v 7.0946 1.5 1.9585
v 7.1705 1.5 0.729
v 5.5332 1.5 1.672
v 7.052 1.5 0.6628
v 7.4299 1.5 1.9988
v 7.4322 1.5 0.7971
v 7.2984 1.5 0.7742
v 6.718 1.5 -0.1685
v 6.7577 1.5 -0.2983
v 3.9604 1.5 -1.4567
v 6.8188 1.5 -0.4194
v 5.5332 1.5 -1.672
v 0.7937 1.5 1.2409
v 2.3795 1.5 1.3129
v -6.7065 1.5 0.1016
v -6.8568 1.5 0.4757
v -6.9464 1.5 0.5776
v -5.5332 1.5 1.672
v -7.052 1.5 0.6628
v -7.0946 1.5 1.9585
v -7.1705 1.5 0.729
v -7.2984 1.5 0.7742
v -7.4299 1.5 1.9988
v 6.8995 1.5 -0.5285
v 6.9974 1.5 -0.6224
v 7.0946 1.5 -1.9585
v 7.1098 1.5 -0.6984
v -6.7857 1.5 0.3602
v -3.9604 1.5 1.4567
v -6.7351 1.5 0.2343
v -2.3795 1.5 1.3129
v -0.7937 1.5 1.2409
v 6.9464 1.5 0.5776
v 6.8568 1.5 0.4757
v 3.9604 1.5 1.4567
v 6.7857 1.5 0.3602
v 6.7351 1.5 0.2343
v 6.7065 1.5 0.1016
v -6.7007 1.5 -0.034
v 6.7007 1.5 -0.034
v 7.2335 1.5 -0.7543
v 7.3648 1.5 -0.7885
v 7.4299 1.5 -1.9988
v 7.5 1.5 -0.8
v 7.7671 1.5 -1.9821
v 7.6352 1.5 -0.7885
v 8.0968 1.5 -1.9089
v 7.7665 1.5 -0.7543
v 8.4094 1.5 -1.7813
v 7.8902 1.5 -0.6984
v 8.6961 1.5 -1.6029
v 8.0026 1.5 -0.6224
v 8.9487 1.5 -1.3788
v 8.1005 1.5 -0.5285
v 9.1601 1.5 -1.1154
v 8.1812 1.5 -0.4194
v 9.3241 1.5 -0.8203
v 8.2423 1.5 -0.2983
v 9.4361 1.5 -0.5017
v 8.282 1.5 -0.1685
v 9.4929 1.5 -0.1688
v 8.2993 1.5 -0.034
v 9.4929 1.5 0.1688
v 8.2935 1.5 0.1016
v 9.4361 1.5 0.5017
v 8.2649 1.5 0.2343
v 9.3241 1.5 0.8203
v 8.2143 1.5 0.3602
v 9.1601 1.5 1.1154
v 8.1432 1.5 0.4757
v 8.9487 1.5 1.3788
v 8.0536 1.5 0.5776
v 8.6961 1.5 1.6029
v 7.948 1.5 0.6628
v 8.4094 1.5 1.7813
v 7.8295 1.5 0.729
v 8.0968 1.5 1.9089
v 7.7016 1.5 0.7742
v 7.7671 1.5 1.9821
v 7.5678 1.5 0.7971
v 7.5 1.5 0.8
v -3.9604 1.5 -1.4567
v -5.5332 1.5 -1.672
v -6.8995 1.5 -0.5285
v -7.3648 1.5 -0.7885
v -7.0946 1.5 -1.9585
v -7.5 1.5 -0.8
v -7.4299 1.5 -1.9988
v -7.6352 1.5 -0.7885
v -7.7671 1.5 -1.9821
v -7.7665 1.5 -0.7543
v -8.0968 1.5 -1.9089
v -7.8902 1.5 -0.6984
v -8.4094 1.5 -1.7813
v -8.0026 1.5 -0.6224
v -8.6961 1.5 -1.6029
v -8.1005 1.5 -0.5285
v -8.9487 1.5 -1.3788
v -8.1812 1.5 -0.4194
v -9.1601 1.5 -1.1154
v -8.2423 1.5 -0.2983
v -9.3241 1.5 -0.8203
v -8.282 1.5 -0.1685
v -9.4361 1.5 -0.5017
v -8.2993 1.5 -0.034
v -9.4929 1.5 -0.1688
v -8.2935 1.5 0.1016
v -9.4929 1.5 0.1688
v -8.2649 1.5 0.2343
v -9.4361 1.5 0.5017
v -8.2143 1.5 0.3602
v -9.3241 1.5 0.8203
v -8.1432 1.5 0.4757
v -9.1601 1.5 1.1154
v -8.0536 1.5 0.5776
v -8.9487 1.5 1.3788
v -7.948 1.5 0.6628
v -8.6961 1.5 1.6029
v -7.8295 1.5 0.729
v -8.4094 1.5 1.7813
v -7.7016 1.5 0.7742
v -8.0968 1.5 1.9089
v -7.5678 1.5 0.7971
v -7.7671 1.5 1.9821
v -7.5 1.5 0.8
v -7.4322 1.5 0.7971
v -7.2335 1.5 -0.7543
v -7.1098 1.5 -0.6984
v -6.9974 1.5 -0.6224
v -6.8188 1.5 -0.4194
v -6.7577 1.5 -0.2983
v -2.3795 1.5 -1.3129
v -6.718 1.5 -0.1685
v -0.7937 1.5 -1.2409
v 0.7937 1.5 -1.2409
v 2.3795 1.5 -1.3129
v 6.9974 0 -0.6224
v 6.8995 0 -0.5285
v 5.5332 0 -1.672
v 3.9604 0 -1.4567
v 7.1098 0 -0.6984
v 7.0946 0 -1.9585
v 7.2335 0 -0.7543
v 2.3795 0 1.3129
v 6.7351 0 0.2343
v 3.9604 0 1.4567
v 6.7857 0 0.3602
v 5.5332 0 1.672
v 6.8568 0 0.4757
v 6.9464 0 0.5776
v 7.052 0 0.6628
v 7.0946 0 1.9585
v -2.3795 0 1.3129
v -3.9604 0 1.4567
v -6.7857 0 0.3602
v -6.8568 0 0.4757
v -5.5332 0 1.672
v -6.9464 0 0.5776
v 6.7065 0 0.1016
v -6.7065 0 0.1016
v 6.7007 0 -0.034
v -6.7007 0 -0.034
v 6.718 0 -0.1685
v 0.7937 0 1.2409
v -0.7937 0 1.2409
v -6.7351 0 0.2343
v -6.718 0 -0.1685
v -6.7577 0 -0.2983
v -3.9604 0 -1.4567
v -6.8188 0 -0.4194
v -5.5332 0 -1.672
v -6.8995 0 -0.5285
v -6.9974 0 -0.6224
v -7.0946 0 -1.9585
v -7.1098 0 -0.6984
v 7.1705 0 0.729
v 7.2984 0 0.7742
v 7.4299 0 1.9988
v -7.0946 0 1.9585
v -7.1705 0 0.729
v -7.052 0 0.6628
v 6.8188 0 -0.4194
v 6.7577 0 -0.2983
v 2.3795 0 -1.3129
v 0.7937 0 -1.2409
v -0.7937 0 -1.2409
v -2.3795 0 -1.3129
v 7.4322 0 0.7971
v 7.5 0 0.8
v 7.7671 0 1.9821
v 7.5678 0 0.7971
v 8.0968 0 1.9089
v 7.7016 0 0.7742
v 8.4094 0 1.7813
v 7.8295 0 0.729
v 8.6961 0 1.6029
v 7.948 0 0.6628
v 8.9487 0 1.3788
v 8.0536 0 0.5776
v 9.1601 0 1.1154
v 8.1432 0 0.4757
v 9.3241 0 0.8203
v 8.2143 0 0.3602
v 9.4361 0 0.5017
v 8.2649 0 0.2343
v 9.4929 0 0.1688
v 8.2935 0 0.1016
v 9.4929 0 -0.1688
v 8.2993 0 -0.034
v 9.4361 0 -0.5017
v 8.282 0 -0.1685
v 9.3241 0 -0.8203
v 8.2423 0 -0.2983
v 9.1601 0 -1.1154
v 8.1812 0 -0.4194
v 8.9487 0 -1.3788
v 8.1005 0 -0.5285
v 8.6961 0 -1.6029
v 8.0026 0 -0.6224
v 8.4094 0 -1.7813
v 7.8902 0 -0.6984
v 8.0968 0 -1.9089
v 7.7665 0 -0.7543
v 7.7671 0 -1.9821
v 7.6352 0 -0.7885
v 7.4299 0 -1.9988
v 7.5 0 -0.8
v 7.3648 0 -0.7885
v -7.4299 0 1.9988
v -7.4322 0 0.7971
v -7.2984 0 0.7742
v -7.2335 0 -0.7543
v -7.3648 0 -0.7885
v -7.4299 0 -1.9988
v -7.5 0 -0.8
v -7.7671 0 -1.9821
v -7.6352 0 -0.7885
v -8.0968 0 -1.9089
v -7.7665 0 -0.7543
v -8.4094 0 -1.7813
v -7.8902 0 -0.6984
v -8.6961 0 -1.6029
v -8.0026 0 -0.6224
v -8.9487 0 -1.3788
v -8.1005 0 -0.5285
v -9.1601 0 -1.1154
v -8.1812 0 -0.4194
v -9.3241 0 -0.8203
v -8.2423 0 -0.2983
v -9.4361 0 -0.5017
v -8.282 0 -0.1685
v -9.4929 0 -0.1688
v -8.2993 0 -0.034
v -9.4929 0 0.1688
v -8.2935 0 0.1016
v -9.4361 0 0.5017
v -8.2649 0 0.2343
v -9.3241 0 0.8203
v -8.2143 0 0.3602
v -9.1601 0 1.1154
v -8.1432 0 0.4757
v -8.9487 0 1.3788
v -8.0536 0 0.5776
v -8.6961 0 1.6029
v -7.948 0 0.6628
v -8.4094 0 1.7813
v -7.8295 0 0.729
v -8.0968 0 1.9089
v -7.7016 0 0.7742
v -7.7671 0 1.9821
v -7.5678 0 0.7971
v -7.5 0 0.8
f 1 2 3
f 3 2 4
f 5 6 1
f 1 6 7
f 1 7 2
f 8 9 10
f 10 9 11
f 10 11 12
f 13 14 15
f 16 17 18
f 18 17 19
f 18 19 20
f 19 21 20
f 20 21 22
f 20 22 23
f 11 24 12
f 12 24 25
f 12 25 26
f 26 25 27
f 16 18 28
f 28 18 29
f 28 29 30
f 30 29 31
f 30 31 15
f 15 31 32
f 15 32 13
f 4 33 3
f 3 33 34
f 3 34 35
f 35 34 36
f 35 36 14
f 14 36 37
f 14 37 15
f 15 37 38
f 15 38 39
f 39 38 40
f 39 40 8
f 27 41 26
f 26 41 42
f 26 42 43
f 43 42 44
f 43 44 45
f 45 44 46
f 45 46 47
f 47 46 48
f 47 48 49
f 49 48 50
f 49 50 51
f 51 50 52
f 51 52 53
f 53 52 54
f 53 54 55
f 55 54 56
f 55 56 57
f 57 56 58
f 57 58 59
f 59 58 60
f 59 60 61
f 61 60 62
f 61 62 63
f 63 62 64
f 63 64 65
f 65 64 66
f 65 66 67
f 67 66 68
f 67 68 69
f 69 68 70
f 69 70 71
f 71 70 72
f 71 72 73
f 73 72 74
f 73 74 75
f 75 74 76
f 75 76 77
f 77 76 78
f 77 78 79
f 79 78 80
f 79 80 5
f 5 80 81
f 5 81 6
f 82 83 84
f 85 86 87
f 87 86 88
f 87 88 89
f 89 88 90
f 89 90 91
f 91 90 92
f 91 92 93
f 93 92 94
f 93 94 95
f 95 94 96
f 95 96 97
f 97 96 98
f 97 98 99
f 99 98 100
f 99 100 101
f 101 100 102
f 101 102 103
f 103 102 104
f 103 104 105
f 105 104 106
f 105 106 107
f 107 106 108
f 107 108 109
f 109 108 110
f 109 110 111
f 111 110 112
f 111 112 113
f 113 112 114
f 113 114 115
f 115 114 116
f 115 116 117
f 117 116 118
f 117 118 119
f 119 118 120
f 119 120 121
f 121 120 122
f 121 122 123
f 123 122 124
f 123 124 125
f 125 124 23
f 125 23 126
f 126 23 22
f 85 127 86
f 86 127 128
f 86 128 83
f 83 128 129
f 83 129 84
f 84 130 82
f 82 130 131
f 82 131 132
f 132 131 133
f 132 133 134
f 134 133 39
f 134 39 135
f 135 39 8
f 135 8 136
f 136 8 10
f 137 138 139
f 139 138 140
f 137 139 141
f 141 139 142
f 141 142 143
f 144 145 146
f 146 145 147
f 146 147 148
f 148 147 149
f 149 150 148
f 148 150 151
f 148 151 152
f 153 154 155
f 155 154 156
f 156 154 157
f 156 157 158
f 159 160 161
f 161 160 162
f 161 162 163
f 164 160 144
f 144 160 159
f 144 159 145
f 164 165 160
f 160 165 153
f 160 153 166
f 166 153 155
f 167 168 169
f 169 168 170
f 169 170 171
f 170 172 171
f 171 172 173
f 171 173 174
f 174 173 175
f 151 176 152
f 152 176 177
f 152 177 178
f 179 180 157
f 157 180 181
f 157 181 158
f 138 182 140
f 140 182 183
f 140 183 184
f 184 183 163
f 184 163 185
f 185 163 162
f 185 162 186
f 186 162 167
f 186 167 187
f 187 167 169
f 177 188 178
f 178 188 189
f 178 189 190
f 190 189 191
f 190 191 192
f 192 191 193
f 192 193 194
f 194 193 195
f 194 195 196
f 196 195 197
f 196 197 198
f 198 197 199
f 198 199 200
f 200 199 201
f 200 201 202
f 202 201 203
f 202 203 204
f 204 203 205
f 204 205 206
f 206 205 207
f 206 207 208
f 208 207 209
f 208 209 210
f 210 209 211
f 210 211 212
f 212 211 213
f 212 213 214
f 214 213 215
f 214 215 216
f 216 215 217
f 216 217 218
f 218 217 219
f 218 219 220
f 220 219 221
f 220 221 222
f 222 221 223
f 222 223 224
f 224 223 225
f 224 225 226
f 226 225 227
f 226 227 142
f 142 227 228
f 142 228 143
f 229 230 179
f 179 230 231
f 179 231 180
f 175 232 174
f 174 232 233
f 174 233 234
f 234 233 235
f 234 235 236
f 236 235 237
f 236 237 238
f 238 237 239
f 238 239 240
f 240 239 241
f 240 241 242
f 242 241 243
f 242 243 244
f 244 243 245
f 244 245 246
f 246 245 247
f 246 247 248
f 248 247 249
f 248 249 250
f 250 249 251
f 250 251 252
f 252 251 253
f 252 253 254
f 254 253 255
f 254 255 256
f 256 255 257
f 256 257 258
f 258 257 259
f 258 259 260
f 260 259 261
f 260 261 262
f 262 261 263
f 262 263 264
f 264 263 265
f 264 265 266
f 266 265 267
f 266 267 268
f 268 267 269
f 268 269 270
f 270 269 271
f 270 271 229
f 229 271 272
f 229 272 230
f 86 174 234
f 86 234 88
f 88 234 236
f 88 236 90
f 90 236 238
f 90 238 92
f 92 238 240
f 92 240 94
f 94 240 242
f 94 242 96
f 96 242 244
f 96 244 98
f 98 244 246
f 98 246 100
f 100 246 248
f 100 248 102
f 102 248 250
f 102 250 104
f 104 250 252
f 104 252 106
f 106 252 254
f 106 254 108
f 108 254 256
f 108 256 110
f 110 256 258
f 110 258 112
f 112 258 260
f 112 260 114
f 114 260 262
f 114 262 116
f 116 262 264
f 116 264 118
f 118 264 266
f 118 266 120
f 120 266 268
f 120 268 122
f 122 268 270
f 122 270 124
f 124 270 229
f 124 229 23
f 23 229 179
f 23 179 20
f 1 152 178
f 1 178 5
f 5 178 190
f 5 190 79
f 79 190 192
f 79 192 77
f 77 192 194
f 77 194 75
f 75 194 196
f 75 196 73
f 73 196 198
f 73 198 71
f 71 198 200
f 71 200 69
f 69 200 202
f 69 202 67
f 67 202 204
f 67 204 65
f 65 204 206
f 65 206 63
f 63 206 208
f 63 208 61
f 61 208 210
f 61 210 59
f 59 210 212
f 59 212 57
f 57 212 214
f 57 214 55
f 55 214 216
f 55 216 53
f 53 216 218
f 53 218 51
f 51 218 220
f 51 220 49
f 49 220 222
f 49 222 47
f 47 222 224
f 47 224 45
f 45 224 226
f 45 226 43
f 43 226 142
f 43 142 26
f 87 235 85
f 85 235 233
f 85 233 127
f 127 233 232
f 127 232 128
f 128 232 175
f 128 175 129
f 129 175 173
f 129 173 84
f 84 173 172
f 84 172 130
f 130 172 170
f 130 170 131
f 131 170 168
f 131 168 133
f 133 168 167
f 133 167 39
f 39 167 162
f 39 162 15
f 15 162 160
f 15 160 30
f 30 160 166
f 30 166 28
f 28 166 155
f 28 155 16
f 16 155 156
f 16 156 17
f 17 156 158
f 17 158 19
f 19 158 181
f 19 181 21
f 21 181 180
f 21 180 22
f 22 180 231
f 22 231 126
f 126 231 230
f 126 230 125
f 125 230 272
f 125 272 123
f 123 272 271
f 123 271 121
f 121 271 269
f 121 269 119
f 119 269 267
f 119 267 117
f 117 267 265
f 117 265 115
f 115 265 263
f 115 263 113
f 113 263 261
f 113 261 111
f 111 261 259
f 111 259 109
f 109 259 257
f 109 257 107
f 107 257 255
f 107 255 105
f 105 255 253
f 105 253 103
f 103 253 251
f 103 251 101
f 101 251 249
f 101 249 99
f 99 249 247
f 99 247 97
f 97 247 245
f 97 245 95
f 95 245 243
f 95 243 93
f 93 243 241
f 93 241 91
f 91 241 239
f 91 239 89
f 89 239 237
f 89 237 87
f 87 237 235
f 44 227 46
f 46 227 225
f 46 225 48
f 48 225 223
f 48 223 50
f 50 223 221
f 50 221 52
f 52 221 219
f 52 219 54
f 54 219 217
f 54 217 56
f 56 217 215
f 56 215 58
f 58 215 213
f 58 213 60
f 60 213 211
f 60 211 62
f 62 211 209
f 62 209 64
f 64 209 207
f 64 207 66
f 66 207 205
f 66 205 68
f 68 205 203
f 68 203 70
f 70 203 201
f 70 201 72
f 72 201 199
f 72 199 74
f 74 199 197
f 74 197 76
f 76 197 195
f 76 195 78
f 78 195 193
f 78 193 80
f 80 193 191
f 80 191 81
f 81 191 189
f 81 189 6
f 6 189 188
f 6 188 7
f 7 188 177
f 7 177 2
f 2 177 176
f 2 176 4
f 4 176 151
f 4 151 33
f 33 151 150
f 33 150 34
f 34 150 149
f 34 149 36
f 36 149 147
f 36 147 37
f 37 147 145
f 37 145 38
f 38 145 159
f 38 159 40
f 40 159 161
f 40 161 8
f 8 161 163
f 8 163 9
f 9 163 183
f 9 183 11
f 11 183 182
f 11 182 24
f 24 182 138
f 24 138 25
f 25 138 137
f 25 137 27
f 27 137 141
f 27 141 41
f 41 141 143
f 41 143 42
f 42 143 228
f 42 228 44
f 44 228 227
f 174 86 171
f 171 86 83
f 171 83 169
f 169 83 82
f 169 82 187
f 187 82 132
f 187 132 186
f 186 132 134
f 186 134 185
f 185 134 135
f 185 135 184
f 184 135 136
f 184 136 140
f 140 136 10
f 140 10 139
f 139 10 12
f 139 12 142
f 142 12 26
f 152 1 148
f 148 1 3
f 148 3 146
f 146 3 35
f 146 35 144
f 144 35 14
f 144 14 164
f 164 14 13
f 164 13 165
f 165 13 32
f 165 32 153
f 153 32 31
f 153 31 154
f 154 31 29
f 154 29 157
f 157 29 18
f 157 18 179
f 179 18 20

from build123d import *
from build123d.topology import SkipClean

# Parameters (mm, degrees)
SKETCH1_R           = 0.8
BOSS_EXTRUDE1_DEPTH = 1.5
SKETCH2_OUTSIDE_W   = 24.894
SKETCH2_OUTSIDE_H   = 9.894
CUT_EXTRUDE1_DEPTH  = 10.823441352


with BuildPart() as part:
    # Sketch1 → Boss-Extrude1 (new body)
    with BuildSketch(Plane(origin=(0, 0, 0), x_dir=(1, 0, 0), z_dir=(0, 1, 0))):
        with BuildLine():
            Line((-7.5, 2), (7.5, 2))
            ThreePointArc((7.5, 2), (9.5, 0), (7.5, -2))
            Line((7.5, -2), (-7.5, -2))
            ThreePointArc((-7.5, -2), (-9.5, 0), (-7.5, 2))
        make_face()
        with Locations(Location((-7.5, 0, 0), (0, 0, 270))):
            Circle(SKETCH1_R, mode=Mode.SUBTRACT)
        with Locations(Location((7.5, 0, 0), (0, 0, 270))):
            Circle(SKETCH1_R, mode=Mode.SUBTRACT)
    extrude(amount=BOSS_EXTRUDE1_DEPTH)

    # Sketch2 outside → Cut-Extrude1 (cut, through all)
    with SkipClean():  # the faces are left unmerged after this step: merging them gives an invalid solid
        with BuildSketch(Plane(origin=(0, 1.5, 0), x_dir=(1, 0, 0), z_dir=(0, 1, 0))):
            Rectangle(SKETCH2_OUTSIDE_W, SKETCH2_OUTSIDE_H)
            with BuildLine():
                ThreePointArc((-7.094594595, 1.95848065), (-9.5, 0), (-7.094594595, -1.95848065))
                ThreePointArc((-7.094594595, -1.95848065), (0, -1.231892029), (7.094594595, -1.95848065))
                ThreePointArc((7.094594595, -1.95848065), (9.5, 0), (7.094594595, 1.95848065))
                ThreePointArc((7.094594595, 1.95848065), (0, 1.231892029), (-7.094594595, 1.95848065))
            make_face(mode=Mode.SUBTRACT)
        extrude(amount=-CUT_EXTRUDE1_DEPTH, mode=Mode.SUBTRACT)


solid = part.part
